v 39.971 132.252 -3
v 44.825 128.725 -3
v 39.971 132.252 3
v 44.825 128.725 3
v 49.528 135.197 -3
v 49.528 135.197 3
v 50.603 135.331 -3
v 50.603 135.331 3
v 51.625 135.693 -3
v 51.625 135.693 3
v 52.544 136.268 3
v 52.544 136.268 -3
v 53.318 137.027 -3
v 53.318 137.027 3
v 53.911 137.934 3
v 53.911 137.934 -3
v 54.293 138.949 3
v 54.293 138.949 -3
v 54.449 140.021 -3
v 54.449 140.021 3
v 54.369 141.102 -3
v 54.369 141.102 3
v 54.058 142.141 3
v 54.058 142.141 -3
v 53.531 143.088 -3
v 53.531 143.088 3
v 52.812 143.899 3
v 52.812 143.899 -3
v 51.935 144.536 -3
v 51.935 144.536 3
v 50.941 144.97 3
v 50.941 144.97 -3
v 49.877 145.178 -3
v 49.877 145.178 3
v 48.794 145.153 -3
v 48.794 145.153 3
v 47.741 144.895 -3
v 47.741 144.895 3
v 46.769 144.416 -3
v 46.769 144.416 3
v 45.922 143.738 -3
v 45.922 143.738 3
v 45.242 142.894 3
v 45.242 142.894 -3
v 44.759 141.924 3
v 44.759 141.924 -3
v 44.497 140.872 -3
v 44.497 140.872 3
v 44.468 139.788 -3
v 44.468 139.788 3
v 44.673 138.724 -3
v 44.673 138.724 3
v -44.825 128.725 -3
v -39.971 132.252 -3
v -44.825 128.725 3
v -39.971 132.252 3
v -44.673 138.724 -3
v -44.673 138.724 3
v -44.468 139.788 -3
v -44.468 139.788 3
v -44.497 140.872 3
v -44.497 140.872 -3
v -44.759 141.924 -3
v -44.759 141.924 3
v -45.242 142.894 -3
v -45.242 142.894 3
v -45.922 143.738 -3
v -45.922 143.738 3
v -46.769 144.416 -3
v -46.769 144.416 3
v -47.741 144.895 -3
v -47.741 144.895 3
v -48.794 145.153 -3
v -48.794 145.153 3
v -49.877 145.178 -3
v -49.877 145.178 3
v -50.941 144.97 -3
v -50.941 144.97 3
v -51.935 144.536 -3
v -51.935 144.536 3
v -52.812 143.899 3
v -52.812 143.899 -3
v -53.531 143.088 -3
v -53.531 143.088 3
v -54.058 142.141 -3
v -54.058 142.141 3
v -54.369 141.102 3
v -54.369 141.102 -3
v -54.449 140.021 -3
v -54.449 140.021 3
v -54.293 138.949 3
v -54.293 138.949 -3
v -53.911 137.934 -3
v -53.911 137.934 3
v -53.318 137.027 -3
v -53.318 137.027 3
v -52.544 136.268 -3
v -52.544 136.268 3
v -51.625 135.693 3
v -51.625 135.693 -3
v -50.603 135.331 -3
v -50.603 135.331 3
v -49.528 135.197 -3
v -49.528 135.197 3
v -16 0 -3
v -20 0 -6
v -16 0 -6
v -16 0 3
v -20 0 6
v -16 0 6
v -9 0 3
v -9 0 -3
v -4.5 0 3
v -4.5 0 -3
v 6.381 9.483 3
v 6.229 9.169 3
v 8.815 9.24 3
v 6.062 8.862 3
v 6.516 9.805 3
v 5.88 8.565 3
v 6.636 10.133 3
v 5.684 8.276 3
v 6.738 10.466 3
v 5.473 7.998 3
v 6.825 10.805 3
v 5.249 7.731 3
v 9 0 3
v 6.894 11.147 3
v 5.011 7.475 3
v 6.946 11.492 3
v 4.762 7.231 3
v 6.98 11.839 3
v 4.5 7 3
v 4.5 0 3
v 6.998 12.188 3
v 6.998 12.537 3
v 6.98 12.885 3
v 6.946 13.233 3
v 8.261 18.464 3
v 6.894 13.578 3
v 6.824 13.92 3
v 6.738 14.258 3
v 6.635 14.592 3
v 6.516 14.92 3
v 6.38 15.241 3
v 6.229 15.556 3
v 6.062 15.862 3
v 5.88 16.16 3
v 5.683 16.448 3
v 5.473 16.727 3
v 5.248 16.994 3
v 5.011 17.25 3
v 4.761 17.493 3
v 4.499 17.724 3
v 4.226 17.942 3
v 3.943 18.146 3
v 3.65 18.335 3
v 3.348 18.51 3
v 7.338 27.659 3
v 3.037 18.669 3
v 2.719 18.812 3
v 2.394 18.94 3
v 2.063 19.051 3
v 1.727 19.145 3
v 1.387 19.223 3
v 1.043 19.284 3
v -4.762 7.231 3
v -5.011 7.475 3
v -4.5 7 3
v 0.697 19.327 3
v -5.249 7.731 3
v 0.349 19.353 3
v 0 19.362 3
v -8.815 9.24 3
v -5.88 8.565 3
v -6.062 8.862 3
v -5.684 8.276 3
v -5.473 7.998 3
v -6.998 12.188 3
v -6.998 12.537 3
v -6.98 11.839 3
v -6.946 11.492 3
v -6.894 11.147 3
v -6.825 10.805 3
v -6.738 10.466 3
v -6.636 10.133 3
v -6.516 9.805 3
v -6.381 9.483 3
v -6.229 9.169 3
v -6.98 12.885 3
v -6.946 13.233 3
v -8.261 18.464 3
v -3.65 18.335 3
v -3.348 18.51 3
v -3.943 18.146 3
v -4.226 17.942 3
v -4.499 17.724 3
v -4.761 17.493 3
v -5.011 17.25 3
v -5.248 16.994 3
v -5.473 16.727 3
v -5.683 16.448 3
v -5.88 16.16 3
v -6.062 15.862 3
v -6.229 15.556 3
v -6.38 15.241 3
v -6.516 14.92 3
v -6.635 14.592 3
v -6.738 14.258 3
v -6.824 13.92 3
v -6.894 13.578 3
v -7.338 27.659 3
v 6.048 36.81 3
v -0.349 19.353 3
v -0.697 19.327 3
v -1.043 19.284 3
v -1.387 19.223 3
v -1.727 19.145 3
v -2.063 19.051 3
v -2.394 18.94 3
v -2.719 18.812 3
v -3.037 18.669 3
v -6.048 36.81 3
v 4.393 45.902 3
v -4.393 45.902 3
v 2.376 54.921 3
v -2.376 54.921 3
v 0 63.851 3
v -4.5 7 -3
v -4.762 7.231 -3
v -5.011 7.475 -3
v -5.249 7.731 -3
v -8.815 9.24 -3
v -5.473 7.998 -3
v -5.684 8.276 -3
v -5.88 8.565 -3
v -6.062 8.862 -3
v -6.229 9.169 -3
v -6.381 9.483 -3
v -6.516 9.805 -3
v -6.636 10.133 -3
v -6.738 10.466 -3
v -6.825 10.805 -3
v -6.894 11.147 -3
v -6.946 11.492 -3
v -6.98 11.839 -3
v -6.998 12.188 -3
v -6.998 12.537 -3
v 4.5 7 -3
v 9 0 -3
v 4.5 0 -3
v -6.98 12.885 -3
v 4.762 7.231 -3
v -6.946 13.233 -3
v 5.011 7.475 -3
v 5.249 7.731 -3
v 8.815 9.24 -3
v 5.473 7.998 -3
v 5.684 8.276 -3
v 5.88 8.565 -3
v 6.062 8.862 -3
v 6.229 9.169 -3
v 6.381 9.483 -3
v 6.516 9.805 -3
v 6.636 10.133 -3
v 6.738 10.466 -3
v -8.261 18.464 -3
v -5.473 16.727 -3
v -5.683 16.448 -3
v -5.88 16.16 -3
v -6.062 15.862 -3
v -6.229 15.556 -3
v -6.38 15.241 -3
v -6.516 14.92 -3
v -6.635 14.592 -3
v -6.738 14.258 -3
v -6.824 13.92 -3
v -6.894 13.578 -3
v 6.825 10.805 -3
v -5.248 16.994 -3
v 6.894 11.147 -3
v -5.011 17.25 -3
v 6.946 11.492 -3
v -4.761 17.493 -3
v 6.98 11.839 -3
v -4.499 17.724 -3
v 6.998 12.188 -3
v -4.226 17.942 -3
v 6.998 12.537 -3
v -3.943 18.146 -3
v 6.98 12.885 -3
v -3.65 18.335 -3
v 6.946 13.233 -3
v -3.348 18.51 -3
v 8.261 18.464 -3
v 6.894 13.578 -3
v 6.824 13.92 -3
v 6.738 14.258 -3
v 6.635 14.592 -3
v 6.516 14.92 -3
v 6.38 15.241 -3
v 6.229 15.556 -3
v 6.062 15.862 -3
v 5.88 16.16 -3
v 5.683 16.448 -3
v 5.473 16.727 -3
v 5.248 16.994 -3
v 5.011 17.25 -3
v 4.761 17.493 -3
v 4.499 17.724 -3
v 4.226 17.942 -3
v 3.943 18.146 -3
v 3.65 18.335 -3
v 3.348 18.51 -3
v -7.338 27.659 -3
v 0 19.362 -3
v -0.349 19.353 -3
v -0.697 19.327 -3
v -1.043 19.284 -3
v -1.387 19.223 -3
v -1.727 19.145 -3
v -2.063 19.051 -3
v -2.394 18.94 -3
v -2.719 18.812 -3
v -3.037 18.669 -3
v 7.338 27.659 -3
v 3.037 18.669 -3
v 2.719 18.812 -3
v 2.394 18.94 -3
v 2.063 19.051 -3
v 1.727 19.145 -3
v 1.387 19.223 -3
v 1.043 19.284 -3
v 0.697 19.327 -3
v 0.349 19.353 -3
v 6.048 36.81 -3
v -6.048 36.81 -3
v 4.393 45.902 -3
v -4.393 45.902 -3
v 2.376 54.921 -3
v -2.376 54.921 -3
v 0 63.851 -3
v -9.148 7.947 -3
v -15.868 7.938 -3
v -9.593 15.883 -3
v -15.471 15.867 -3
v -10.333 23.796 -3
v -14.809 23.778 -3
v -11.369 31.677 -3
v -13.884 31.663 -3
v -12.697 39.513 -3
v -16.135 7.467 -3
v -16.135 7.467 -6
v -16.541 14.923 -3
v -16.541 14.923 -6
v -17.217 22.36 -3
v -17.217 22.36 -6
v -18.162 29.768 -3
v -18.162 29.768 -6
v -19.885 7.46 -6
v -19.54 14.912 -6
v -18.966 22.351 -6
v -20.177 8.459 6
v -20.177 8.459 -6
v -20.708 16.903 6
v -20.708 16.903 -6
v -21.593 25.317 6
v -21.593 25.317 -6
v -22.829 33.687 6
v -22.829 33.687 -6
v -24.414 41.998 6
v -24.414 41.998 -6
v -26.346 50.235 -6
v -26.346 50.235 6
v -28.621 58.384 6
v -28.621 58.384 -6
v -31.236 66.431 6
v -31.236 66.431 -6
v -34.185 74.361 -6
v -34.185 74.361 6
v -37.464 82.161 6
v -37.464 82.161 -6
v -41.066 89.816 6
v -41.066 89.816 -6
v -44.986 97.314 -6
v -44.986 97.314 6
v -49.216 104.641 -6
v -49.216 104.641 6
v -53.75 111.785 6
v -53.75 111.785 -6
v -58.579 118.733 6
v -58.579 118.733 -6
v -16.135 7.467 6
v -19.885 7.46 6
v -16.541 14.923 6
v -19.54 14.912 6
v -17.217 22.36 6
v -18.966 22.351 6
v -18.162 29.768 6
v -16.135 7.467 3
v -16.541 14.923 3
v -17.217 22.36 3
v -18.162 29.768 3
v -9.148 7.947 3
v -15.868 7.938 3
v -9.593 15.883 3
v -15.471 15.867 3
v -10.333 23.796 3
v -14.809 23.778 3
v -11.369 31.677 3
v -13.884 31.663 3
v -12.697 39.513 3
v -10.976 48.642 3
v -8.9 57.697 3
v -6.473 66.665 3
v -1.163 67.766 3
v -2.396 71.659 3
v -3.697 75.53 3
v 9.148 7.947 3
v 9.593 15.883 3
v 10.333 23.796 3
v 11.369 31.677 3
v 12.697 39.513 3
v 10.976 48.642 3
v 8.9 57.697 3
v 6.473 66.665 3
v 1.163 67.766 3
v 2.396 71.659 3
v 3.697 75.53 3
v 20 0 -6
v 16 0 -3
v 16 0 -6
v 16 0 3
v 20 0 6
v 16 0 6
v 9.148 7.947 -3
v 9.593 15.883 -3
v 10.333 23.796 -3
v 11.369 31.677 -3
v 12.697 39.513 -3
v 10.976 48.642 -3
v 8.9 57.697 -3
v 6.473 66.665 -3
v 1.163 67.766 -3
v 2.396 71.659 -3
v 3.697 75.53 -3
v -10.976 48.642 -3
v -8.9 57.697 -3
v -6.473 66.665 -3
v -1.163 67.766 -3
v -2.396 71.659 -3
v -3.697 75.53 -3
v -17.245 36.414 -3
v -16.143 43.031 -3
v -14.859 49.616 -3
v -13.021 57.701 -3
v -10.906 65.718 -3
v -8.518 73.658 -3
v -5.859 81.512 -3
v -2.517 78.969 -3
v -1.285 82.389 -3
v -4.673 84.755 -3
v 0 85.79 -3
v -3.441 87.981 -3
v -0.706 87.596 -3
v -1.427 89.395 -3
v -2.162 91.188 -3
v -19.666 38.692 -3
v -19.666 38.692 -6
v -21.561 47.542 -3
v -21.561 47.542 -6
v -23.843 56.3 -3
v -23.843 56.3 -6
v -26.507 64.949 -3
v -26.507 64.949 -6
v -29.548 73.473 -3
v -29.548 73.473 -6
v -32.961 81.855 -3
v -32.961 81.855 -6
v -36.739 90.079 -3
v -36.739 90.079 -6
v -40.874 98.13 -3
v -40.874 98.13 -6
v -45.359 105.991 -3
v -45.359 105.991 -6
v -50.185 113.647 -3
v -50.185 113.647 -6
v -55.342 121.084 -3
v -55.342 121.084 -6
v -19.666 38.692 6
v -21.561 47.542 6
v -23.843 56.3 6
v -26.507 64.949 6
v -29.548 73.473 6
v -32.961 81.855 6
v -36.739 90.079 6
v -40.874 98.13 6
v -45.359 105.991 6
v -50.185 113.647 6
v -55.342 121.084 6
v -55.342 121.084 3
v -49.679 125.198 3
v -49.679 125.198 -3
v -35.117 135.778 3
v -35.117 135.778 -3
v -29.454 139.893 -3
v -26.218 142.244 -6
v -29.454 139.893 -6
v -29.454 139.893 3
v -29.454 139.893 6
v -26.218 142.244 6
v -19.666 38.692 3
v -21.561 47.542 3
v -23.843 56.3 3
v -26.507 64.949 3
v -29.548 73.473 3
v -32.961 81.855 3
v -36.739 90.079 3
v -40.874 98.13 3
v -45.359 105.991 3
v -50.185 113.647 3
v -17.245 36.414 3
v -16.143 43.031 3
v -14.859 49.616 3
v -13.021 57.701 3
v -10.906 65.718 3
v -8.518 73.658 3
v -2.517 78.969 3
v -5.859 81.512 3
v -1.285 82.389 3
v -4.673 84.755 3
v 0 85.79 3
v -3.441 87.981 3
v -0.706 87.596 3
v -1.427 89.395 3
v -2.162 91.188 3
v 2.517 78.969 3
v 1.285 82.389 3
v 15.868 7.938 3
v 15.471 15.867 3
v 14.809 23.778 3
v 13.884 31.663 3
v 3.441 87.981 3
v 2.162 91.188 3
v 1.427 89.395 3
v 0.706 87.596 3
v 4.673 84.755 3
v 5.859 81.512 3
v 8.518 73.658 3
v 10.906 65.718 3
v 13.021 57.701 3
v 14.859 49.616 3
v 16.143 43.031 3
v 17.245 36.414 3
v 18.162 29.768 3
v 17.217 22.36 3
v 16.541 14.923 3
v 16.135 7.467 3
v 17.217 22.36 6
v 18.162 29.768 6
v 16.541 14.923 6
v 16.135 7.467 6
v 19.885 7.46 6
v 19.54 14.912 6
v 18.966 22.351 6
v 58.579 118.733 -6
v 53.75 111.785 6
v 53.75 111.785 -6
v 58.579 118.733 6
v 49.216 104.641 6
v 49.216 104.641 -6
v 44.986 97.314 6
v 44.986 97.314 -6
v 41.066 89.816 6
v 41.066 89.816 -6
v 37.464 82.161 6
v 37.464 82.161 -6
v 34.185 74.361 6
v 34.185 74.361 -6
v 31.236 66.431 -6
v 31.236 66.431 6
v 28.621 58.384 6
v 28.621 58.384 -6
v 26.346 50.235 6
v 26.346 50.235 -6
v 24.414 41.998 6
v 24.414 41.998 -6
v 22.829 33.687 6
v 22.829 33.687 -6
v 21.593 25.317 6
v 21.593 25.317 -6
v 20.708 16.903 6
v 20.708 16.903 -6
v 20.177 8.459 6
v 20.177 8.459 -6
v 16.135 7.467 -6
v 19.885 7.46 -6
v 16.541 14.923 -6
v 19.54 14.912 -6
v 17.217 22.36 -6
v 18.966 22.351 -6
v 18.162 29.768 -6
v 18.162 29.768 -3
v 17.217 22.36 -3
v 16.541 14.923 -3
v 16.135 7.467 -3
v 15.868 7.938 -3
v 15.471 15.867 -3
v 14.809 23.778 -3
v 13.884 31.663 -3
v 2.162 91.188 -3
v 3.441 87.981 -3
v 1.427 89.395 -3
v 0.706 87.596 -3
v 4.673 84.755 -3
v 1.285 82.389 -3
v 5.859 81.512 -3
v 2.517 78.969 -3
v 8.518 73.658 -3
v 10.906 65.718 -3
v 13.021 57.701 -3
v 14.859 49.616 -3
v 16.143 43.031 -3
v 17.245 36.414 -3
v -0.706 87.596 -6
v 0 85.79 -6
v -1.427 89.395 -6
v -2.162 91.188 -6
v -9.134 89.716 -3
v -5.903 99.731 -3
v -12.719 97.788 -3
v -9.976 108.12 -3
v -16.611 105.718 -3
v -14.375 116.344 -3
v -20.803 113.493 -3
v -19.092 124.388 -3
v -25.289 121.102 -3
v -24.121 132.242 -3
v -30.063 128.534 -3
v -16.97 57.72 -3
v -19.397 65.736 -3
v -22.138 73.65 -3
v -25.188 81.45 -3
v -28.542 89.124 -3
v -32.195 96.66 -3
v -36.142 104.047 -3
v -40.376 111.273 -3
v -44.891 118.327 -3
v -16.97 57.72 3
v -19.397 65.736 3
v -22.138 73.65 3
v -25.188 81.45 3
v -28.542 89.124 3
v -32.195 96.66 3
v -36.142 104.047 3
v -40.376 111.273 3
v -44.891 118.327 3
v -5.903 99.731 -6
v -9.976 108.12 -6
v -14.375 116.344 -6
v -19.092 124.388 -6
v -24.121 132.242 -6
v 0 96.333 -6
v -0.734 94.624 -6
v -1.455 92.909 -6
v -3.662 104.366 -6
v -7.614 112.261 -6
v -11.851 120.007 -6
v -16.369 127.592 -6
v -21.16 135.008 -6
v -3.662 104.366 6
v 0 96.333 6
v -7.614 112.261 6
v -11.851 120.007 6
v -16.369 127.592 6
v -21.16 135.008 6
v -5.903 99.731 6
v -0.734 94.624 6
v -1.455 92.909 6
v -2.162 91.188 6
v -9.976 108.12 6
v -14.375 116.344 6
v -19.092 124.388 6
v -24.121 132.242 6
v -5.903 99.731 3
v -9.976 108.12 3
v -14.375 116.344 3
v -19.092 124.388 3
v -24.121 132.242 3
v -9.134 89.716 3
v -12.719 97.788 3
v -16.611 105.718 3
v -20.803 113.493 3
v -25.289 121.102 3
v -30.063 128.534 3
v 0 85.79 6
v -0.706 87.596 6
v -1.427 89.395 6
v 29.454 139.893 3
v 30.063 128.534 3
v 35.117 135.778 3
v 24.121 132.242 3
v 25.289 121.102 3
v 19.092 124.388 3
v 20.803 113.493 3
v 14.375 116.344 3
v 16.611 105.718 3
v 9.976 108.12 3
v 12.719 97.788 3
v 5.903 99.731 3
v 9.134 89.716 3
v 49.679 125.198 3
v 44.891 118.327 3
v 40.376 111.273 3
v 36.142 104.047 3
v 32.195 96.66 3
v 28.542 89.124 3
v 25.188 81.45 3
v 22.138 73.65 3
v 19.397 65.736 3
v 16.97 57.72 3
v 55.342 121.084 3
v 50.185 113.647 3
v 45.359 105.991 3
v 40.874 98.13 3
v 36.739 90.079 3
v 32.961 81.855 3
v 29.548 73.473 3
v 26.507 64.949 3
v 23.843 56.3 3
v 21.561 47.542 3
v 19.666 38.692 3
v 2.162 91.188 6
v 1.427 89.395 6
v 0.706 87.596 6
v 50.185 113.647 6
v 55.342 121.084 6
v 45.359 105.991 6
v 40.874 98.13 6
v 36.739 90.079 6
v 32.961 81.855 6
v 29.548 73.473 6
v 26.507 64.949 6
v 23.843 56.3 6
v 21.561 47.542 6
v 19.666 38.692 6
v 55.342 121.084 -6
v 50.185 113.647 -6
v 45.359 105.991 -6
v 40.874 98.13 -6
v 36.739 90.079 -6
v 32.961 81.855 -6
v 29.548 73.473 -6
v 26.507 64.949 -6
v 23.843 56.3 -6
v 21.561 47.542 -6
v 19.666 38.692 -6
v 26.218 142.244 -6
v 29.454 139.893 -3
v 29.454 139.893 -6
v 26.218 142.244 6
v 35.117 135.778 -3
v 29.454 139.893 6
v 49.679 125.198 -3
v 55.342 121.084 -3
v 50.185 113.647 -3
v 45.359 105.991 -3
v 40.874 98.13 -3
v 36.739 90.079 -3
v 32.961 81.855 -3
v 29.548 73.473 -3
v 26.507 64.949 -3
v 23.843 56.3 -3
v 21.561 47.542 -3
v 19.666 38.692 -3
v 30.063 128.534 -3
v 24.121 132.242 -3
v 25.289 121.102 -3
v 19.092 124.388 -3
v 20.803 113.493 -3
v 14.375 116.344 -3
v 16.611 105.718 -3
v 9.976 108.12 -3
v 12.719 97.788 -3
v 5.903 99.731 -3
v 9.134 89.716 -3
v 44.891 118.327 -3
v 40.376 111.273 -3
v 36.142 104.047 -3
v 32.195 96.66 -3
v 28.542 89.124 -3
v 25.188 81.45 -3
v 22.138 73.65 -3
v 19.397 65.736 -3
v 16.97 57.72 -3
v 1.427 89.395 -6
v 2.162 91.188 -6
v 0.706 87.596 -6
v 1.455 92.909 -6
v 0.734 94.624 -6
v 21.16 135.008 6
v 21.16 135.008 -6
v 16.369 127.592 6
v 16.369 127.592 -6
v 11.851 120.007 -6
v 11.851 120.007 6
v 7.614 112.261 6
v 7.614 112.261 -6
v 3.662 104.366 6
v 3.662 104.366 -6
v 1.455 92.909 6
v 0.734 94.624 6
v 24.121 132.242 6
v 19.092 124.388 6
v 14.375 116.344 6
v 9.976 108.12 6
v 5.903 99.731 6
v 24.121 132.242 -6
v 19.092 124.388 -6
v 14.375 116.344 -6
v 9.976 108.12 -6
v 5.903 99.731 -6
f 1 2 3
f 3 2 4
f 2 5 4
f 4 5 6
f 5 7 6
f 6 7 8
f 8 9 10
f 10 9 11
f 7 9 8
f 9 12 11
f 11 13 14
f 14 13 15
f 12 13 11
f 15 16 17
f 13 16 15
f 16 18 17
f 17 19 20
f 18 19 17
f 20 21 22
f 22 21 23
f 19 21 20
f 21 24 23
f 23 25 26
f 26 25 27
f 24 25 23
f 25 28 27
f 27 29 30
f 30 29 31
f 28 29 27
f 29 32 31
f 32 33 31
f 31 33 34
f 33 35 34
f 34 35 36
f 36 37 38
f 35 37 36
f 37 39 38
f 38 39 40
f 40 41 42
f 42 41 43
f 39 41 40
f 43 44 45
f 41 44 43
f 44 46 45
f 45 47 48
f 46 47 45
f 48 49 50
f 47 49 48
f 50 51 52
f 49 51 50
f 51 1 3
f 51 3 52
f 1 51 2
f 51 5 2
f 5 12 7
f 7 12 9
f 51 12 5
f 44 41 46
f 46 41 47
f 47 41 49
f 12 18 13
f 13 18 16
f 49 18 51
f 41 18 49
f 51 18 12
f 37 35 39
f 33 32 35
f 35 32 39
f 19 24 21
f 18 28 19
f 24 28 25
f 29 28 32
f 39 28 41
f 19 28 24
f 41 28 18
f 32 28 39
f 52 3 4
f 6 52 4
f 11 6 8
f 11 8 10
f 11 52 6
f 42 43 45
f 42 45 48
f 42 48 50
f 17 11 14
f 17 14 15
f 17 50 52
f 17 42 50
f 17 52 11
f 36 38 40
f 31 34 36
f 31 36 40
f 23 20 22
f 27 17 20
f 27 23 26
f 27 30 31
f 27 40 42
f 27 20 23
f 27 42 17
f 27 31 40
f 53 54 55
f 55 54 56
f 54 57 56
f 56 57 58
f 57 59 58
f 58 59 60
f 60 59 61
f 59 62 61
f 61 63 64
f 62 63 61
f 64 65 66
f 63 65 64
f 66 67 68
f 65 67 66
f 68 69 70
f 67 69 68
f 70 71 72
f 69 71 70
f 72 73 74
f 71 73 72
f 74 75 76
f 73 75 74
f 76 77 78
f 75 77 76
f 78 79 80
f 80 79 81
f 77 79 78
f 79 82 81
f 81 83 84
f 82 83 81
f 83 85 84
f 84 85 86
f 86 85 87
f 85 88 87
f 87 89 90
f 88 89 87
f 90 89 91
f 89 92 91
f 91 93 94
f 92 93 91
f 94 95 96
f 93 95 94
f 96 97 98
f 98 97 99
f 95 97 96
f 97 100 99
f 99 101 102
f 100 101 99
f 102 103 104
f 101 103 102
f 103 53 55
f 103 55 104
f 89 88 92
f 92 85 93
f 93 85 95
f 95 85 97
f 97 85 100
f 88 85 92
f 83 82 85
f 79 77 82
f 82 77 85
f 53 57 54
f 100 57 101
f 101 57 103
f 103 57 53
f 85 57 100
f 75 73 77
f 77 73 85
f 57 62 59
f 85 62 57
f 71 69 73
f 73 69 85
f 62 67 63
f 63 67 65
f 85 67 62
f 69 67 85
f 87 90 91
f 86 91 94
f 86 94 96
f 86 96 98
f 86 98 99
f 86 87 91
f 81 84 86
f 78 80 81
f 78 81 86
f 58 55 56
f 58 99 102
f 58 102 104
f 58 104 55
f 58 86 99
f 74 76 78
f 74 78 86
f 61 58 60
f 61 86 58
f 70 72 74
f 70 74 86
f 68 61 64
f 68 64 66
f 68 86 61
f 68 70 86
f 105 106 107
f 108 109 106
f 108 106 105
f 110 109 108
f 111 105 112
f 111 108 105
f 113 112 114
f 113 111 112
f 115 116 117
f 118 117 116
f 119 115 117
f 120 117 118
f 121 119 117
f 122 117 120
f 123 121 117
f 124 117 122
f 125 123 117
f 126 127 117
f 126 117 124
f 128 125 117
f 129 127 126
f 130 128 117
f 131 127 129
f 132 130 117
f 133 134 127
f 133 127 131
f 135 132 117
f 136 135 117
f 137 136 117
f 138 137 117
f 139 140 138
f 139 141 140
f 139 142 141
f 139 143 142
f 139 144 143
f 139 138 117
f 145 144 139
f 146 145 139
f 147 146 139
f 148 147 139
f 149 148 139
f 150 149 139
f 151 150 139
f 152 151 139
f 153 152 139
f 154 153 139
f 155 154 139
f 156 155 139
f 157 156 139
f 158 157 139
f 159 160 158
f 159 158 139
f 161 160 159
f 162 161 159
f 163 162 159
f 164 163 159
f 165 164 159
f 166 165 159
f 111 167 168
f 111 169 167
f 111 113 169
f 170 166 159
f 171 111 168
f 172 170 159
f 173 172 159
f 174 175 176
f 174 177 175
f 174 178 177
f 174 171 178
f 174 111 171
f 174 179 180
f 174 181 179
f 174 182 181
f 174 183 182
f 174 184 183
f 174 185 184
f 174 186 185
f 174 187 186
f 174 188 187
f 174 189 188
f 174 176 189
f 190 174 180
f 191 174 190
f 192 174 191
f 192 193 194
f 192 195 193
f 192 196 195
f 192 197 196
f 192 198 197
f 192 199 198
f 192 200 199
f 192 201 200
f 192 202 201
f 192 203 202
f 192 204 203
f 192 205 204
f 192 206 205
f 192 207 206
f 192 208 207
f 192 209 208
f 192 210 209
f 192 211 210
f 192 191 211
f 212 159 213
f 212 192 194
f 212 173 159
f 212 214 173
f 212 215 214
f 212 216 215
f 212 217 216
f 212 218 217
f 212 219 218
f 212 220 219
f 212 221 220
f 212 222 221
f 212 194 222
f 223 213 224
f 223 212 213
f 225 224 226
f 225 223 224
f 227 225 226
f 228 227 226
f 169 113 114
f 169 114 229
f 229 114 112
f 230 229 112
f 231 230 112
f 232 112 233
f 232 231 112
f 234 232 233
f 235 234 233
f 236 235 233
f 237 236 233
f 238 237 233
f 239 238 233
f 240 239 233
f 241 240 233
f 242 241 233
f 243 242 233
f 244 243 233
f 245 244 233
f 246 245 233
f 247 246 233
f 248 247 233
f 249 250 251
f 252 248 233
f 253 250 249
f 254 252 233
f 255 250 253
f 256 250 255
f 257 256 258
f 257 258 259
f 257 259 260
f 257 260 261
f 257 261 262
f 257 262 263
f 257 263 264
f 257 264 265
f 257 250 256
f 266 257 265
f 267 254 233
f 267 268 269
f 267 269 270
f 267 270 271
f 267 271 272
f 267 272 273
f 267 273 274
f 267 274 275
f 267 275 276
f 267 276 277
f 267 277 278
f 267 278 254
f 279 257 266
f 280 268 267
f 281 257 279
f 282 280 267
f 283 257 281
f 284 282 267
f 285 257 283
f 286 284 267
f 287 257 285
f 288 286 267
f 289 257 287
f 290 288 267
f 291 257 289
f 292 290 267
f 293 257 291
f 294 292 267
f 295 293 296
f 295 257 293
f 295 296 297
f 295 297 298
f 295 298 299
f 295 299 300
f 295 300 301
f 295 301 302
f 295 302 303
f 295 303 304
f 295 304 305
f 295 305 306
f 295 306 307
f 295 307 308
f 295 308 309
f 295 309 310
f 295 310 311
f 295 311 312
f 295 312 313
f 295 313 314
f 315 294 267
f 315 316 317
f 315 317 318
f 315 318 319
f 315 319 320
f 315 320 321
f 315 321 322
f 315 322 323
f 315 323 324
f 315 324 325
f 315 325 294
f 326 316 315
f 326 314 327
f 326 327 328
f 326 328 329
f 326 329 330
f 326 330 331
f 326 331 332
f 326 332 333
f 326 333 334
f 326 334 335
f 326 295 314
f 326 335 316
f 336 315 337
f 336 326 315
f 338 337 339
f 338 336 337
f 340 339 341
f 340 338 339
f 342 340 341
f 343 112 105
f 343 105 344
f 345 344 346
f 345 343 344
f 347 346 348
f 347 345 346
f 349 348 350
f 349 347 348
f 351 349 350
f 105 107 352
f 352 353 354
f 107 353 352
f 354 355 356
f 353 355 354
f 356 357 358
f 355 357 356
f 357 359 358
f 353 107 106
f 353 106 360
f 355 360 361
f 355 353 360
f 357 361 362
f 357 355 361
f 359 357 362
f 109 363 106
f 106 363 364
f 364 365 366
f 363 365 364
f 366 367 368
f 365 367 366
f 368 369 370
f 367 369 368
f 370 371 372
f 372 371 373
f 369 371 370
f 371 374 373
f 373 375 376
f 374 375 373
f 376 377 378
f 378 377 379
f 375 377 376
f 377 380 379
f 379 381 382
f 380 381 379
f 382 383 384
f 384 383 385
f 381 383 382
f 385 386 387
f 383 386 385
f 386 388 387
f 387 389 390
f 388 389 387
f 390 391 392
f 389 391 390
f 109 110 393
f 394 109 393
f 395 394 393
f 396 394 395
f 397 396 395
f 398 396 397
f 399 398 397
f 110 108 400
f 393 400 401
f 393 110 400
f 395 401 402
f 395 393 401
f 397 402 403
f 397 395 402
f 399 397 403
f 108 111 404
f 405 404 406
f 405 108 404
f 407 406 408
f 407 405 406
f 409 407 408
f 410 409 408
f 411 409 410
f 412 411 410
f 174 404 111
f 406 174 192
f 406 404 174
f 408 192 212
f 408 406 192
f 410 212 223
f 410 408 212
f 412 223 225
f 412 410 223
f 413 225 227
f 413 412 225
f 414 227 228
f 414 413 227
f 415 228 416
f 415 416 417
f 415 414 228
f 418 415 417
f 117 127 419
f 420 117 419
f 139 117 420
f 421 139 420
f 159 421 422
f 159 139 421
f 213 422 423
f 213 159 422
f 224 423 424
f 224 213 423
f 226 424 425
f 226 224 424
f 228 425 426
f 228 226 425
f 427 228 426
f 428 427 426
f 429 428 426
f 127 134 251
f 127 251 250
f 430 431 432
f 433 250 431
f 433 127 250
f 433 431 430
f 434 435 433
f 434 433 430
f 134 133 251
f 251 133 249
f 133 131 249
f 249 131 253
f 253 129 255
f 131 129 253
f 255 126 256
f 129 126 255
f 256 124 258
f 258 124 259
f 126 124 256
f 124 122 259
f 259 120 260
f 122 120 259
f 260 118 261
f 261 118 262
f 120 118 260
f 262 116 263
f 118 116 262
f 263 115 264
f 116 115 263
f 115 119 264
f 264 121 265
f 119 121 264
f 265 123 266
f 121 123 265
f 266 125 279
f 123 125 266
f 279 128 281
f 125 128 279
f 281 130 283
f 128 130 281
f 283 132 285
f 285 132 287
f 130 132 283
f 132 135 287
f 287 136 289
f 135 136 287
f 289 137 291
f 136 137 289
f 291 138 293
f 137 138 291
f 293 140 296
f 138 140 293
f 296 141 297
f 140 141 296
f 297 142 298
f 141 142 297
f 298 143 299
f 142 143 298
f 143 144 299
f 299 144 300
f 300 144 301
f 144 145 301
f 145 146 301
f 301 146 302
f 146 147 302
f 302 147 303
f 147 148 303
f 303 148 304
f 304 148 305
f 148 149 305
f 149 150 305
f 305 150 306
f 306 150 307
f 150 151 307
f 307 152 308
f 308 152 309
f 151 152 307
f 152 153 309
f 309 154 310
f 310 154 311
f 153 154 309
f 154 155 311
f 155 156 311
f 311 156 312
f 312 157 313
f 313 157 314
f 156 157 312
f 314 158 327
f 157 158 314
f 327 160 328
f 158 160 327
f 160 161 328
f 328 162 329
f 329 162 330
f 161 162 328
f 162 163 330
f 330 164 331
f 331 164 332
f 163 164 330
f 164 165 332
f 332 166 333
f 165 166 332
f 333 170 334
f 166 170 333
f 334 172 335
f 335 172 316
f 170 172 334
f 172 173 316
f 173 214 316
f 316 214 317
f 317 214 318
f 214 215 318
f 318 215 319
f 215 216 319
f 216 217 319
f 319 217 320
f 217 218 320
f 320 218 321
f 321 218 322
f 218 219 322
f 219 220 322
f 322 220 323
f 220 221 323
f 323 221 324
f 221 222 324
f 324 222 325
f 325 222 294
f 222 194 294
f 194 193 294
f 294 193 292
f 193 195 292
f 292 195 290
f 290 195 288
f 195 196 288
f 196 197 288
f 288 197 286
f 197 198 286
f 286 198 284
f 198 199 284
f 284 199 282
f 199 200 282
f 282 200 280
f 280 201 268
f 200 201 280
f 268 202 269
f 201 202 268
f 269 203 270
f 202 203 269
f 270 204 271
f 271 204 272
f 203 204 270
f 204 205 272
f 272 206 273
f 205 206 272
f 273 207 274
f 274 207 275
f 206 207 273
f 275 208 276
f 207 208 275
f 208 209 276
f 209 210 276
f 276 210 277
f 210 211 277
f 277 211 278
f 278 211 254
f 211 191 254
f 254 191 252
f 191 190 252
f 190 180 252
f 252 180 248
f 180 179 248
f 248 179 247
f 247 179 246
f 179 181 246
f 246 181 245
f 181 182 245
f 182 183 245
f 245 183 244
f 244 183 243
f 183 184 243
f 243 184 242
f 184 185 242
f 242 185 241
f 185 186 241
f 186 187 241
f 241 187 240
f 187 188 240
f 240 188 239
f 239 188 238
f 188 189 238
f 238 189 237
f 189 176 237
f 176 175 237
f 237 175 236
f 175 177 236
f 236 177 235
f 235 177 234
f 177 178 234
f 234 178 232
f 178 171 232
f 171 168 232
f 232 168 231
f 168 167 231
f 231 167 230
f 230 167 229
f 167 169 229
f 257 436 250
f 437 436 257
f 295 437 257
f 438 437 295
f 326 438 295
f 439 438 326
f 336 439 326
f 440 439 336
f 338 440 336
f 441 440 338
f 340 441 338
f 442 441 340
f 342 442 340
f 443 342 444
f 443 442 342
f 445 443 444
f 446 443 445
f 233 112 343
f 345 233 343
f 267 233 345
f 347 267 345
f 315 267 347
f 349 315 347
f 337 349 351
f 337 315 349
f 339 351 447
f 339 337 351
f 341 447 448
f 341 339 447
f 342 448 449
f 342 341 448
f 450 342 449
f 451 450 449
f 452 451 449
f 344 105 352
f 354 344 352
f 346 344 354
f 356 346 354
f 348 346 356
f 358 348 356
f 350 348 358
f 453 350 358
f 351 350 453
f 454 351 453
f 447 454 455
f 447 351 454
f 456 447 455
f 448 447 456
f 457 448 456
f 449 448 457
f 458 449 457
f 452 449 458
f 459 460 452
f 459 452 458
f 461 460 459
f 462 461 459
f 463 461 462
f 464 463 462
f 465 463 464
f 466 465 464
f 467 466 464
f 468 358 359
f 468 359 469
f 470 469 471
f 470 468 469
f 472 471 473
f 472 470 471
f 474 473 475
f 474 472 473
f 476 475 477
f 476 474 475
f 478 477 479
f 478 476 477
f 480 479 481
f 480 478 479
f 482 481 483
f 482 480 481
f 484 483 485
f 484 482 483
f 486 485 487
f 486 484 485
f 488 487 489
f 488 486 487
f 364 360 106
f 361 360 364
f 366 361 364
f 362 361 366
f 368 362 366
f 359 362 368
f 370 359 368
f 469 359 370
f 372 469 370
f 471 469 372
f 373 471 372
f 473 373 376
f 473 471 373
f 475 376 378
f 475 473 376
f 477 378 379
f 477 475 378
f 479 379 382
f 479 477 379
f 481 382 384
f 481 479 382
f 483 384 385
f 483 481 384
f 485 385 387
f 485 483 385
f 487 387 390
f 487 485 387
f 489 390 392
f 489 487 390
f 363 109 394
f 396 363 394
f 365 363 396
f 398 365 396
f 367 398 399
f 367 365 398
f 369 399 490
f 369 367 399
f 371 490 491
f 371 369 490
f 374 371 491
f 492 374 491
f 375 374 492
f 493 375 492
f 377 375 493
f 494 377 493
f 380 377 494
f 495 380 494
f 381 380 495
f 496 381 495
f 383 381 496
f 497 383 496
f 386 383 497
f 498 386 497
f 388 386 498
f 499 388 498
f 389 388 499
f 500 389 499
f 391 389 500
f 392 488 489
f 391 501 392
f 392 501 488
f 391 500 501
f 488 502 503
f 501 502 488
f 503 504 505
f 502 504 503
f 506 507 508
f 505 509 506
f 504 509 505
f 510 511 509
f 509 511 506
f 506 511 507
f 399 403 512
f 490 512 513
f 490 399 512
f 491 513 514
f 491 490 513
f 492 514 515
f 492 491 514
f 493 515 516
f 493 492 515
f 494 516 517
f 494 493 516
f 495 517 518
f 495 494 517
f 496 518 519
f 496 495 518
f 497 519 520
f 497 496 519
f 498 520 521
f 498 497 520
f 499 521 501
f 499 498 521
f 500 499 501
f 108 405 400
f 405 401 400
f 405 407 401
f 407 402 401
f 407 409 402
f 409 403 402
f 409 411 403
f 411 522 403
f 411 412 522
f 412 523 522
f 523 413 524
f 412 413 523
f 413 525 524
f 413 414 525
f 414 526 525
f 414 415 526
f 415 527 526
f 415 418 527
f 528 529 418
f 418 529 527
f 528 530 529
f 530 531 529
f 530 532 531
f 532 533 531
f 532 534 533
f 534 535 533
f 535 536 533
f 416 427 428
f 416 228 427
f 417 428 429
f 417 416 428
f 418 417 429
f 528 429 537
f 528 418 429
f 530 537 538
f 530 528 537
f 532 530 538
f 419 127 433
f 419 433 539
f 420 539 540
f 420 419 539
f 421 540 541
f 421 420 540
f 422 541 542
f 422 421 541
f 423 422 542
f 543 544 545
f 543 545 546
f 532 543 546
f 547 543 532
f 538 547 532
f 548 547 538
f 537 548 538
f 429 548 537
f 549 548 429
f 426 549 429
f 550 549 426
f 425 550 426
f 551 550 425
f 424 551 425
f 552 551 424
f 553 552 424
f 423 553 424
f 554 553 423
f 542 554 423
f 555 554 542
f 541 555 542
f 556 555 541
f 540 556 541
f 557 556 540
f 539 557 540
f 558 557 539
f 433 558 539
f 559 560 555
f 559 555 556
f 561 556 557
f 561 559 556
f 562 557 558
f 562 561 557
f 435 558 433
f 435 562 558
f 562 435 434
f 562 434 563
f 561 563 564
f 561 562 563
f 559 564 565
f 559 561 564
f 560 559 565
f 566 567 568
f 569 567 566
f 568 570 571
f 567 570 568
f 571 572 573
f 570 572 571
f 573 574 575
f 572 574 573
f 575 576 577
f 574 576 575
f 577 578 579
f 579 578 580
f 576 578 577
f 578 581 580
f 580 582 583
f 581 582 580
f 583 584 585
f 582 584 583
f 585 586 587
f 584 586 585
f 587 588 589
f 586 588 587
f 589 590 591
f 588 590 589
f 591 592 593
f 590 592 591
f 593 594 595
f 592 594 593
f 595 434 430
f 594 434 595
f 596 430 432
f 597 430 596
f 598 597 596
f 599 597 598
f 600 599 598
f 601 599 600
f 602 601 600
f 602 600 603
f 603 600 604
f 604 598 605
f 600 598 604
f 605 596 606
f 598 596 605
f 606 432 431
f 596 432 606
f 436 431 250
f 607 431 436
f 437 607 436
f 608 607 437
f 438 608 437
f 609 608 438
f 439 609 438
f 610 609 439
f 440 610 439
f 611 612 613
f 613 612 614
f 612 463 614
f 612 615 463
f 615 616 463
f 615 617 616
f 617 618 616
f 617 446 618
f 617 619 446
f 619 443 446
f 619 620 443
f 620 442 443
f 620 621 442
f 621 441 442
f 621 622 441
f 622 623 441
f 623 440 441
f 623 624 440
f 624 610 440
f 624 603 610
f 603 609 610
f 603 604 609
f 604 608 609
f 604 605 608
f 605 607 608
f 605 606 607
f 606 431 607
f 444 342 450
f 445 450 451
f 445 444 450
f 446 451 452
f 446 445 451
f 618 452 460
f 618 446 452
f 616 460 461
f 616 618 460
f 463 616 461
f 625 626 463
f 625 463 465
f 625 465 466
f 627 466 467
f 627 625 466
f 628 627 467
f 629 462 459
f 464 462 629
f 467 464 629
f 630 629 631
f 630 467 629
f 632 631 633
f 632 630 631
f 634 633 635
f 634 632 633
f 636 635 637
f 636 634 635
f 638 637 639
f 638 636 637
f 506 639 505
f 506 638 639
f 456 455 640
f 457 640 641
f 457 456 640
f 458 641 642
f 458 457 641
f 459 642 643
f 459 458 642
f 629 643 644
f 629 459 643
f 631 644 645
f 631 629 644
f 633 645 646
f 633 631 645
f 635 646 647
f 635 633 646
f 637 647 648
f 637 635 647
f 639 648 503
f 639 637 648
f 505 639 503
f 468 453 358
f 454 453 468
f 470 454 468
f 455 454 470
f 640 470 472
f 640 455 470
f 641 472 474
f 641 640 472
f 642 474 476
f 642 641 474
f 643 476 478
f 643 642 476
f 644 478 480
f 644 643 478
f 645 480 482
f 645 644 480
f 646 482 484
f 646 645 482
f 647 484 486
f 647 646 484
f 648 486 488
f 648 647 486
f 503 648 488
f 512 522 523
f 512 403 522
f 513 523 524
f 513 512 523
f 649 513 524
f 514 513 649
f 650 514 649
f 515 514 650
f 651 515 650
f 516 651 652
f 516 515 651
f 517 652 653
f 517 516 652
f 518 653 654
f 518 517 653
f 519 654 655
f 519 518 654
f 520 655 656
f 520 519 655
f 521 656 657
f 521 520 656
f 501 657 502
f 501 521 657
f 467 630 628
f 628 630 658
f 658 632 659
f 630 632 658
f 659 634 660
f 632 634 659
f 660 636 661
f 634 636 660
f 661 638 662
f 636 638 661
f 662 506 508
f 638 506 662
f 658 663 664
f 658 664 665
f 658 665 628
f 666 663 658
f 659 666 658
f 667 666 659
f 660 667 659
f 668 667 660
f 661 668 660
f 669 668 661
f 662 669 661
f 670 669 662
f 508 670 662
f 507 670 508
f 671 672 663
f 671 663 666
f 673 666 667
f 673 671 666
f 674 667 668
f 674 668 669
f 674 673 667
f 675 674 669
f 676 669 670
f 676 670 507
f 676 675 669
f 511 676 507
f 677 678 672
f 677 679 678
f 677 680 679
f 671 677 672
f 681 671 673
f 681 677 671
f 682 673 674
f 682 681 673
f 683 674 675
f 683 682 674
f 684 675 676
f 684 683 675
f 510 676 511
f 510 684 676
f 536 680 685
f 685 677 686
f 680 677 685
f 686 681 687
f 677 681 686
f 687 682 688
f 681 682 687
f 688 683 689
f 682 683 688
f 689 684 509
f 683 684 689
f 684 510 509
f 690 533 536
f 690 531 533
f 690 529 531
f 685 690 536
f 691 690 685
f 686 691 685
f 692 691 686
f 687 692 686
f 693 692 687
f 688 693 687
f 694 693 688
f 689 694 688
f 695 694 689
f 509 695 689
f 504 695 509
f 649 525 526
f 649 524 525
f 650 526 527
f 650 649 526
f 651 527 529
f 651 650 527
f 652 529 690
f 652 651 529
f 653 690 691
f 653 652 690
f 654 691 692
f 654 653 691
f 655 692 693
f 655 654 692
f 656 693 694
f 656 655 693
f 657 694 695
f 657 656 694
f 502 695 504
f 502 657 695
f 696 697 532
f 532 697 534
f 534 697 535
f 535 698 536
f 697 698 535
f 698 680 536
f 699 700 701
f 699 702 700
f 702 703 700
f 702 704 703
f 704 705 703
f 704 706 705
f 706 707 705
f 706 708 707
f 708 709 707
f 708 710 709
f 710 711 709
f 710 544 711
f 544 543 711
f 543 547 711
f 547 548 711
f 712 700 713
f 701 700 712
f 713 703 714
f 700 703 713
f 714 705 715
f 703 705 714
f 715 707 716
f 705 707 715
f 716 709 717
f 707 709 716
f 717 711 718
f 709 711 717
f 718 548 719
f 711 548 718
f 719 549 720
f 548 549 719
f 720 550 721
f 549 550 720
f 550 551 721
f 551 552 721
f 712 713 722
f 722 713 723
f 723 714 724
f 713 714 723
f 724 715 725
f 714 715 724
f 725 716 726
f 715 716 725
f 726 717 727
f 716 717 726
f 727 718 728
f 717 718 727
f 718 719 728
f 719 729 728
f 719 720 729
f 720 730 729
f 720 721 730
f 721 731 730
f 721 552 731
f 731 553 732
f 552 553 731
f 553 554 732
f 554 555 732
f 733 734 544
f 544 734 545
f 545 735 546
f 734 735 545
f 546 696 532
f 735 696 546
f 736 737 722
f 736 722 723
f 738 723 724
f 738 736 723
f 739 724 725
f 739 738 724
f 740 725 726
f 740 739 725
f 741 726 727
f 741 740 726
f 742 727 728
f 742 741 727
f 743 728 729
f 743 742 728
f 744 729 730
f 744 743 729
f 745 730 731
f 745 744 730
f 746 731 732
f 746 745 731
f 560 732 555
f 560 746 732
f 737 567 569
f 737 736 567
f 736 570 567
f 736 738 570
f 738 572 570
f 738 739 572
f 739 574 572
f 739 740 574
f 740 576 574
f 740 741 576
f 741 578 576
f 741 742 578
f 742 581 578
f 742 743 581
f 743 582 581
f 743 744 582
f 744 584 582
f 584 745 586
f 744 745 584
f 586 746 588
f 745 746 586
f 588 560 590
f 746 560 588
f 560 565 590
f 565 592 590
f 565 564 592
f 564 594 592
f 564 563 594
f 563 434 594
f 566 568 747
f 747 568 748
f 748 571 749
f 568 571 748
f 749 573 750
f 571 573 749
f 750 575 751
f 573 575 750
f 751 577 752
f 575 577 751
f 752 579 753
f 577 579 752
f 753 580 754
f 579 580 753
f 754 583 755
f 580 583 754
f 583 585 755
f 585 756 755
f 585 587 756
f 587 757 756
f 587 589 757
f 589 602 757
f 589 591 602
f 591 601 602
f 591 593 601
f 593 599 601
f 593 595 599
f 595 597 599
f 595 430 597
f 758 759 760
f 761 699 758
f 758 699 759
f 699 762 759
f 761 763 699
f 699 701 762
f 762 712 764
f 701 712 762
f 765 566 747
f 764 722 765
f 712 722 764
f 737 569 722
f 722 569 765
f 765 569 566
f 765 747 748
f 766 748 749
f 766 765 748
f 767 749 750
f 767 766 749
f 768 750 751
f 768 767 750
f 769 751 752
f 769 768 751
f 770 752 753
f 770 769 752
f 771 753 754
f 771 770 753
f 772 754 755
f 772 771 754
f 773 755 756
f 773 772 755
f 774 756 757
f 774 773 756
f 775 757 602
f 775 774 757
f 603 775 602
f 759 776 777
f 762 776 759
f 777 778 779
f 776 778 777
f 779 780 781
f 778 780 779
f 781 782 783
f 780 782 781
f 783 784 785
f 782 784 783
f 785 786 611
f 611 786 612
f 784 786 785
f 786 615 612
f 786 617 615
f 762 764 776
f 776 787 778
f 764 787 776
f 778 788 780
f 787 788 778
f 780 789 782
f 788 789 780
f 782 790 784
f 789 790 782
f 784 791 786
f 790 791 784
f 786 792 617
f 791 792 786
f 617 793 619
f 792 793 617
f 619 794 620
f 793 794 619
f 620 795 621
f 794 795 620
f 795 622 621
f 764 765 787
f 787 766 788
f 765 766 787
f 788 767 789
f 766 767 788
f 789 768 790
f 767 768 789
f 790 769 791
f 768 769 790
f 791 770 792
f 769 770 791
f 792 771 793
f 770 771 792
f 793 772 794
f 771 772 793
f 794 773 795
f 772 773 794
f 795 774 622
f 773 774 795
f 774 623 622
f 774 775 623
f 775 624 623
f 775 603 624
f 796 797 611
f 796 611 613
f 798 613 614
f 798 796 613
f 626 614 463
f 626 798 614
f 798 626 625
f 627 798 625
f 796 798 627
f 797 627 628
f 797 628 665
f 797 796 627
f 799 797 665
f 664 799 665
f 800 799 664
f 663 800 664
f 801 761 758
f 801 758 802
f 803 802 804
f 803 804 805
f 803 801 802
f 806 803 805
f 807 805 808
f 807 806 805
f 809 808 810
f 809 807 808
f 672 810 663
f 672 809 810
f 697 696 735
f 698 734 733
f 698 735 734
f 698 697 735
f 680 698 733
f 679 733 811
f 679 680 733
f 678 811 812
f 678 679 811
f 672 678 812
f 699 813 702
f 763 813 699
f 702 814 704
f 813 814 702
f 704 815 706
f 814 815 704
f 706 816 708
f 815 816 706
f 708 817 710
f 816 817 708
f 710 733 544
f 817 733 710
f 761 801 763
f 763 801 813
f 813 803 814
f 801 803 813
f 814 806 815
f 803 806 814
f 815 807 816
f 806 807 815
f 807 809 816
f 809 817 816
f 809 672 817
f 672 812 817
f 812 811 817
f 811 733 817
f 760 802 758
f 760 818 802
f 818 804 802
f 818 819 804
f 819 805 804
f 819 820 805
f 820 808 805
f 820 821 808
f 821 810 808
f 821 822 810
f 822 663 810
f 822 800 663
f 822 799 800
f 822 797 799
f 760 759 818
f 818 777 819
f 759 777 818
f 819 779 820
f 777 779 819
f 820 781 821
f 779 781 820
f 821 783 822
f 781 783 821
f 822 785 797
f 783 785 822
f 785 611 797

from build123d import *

# Parameters (mm, degrees)
SKETCH013_W       = 32
SKETCH013_H       = 3
POCKET_DEPTH      = 6.001
POCKET_DEPTH_BACK = -6.001
PAD001_DEPTH      = 3
PAD002_DEPTH      = 3


with BuildPart() as main:
    # AdditivePipe: sweep along a path in Sketch
    with BuildLine(Plane.XY) as additivepipe_path:
        ThreePointArc((0, 0), (-10.865453, 68.601773), (-42.398227, 130.488326))
    # Sketch002 → AdditivePipe (sweep)
    with BuildSketch(Plane.XZ):
        Polygon((-20, 6), (-20, -6), (-16, -6), (-16, -3), (-9, -3), (9, -3), (16, -3), (16, -6), (20, -6), (20, 6), (16, 6), (16, 3), (9, 3), (-9, 3), (-16, 3), (-16, 6), align=None)
    sweep(path=additivepipe_path.line)

    # AdditivePipe001: sweep along a path in Sketch001
    with BuildLine(Plane.XY) as additivepipe001_path:
        ThreePointArc((42.398227, 130.488326), (10.865453, 68.601773), (0, 0))
    # Sketch002 → AdditivePipe001 (sweep)
    with BuildSketch(Plane.XZ):
        Polygon((-20, 6), (-20, -6), (-16, -6), (-16, -3), (-9, -3), (9, -3), (16, -3), (16, -6), (20, -6), (20, 6), (16, 6), (16, 3), (9, 3), (-9, 3), (-16, 3), (-16, 6), align=None)
    sweep(path=additivepipe001_path.line)

    # SubtractivePipe: sweep along a path in Sketch
    with BuildLine(Plane.XY) as subtractivepipe_path:
        ThreePointArc((0, 0), (-10.865453, 68.601773), (-42.398227, 130.488326))
    # Sketch013 (on Face1 of AdditivePipe001) → SubtractivePipe (sweep, cut)
    with BuildSketch(Plane.XZ):
        with Locations((0, 4.5)):
            Rectangle(SKETCH013_W, SKETCH013_H)
    subtractivepipe = sweep(path=subtractivepipe_path.line, mode=Mode.SUBTRACT)

    # SubtractivePipe001: sweep along a path in Sketch001
    with BuildLine(Plane.XY) as subtractivepipe001_path:
        ThreePointArc((42.398227, 130.488326), (10.865453, 68.601773), (0, 0))
    # Sketch013 (on Face1 of AdditivePipe001) → SubtractivePipe001 (sweep, cut)
    with BuildSketch(Plane.XZ):
        with Locations((0, 4.5)):
            Rectangle(SKETCH013_W, SKETCH013_H)
    subtractivepipe001 = sweep(path=subtractivepipe001_path.line, mode=Mode.SUBTRACT)

    # Mirrored: SubtractivePipe across XY
    add(subtractivepipe.mirror(Plane.XY), mode=Mode.SUBTRACT)

    # Mirrored001: SubtractivePipe001 across XY
    add(subtractivepipe001.mirror(Plane.XY), mode=Mode.SUBTRACT)

    # Sketch007 → Pocket (cut, two sides)
    with BuildSketch(Plane.XY) as pocket_sk:
        with BuildLine():
            Line((-4.5, 0), (4.5, 0))
            Line((4.5, 0), (4.5, 7))
            ThreePointArc((4.5, 7), (0, 19.361903), (-4.5, 7))
            Line((-4.5, 0), (-4.5, 7))
        make_face()
    extrude(amount=-POCKET_DEPTH, mode=Mode.SUBTRACT)
    extrude(pocket_sk.sketch, amount=-POCKET_DEPTH_BACK, mode=Mode.SUBTRACT)


with BuildPart() as male3:
    # Sketch011 → Pad001 (new body, symmetric)
    with BuildSketch(Plane.XY):
        with BuildLine():
            Line((39.971176, 132.251682), (44.825278, 128.72497))
            Line((44.825278, 128.72497), (49.52756, 135.197106))
            ThreePointArc((49.52756, 135.197106), (52.390577, 144.241615), (44.673458, 138.723818))
            Line((39.971176, 132.251682), (44.673458, 138.723818))
        make_face()
    extrude(amount=PAD001_DEPTH, both=True)


with BuildPart() as male2:
    # Sketch012 → Pad002 (new body, symmetric)
    with BuildSketch(Plane.XY):
        with BuildLine():
            Line((-44.825278, 128.72497), (-39.971176, 132.251682))
            Line((-39.971176, 132.251682), (-44.673458, 138.723818))
            ThreePointArc((-44.673458, 138.723818), (-52.390577, 144.241615), (-49.52756, 135.197106))
            Line((-44.825278, 128.72497), (-49.52756, 135.197106))
        make_face()
    extrude(amount=PAD002_DEPTH, both=True)


solid = Compound([main.part, male3.part, male2.part])
